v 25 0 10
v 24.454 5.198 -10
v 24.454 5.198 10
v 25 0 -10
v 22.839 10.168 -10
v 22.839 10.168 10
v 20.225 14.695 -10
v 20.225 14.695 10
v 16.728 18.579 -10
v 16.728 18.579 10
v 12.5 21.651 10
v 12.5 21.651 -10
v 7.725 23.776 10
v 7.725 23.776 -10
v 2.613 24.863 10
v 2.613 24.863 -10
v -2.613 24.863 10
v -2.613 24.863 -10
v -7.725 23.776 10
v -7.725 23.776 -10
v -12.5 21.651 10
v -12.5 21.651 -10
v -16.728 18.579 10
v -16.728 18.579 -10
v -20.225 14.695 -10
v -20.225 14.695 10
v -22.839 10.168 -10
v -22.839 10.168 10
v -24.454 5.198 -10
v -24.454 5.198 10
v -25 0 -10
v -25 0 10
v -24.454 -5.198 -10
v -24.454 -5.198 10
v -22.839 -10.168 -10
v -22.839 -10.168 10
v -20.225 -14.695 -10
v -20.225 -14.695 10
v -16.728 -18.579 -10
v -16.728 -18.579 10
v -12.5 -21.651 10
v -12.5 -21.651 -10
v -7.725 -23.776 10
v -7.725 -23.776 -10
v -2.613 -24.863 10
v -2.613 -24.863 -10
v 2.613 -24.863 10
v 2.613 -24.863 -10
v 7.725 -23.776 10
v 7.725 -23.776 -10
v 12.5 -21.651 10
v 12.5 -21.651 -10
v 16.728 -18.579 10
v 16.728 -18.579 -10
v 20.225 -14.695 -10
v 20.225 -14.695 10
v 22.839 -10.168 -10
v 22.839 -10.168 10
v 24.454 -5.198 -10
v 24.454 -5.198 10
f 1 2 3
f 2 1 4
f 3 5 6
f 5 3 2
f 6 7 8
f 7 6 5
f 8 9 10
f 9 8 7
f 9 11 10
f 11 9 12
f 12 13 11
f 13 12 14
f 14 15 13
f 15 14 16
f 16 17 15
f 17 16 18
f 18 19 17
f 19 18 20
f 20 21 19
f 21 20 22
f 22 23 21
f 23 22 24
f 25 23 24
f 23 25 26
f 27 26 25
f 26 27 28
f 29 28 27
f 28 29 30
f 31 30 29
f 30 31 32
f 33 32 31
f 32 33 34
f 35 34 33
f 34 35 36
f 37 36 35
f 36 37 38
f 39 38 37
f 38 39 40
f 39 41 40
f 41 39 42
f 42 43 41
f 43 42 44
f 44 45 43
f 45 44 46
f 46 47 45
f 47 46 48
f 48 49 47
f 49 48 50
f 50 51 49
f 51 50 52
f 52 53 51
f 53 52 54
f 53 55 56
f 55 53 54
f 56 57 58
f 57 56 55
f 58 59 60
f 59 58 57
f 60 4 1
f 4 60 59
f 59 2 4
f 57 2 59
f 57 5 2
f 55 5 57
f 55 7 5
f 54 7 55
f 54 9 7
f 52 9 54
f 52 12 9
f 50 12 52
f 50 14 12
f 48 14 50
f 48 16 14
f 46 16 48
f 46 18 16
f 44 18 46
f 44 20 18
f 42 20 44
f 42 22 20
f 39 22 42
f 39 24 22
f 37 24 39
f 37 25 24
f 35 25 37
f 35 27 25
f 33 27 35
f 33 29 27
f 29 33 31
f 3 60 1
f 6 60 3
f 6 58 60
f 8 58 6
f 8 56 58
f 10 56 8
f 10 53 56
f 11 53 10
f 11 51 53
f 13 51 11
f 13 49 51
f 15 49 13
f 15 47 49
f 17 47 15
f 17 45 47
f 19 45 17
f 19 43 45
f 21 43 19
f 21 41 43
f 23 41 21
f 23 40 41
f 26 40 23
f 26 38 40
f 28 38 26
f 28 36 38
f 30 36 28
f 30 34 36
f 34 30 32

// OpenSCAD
// Parameters for the central cylinder
cylinder_diameter = 50; // Diameter of the cylinder
cylinder_height = 20;   // Height of the cylinder

// Central cylinder
module central_cylinder() {
    cylinder(d = cylinder_diameter, h = cylinder_height, center = true);
}

// Render the central cylinder
central_cylinder();
